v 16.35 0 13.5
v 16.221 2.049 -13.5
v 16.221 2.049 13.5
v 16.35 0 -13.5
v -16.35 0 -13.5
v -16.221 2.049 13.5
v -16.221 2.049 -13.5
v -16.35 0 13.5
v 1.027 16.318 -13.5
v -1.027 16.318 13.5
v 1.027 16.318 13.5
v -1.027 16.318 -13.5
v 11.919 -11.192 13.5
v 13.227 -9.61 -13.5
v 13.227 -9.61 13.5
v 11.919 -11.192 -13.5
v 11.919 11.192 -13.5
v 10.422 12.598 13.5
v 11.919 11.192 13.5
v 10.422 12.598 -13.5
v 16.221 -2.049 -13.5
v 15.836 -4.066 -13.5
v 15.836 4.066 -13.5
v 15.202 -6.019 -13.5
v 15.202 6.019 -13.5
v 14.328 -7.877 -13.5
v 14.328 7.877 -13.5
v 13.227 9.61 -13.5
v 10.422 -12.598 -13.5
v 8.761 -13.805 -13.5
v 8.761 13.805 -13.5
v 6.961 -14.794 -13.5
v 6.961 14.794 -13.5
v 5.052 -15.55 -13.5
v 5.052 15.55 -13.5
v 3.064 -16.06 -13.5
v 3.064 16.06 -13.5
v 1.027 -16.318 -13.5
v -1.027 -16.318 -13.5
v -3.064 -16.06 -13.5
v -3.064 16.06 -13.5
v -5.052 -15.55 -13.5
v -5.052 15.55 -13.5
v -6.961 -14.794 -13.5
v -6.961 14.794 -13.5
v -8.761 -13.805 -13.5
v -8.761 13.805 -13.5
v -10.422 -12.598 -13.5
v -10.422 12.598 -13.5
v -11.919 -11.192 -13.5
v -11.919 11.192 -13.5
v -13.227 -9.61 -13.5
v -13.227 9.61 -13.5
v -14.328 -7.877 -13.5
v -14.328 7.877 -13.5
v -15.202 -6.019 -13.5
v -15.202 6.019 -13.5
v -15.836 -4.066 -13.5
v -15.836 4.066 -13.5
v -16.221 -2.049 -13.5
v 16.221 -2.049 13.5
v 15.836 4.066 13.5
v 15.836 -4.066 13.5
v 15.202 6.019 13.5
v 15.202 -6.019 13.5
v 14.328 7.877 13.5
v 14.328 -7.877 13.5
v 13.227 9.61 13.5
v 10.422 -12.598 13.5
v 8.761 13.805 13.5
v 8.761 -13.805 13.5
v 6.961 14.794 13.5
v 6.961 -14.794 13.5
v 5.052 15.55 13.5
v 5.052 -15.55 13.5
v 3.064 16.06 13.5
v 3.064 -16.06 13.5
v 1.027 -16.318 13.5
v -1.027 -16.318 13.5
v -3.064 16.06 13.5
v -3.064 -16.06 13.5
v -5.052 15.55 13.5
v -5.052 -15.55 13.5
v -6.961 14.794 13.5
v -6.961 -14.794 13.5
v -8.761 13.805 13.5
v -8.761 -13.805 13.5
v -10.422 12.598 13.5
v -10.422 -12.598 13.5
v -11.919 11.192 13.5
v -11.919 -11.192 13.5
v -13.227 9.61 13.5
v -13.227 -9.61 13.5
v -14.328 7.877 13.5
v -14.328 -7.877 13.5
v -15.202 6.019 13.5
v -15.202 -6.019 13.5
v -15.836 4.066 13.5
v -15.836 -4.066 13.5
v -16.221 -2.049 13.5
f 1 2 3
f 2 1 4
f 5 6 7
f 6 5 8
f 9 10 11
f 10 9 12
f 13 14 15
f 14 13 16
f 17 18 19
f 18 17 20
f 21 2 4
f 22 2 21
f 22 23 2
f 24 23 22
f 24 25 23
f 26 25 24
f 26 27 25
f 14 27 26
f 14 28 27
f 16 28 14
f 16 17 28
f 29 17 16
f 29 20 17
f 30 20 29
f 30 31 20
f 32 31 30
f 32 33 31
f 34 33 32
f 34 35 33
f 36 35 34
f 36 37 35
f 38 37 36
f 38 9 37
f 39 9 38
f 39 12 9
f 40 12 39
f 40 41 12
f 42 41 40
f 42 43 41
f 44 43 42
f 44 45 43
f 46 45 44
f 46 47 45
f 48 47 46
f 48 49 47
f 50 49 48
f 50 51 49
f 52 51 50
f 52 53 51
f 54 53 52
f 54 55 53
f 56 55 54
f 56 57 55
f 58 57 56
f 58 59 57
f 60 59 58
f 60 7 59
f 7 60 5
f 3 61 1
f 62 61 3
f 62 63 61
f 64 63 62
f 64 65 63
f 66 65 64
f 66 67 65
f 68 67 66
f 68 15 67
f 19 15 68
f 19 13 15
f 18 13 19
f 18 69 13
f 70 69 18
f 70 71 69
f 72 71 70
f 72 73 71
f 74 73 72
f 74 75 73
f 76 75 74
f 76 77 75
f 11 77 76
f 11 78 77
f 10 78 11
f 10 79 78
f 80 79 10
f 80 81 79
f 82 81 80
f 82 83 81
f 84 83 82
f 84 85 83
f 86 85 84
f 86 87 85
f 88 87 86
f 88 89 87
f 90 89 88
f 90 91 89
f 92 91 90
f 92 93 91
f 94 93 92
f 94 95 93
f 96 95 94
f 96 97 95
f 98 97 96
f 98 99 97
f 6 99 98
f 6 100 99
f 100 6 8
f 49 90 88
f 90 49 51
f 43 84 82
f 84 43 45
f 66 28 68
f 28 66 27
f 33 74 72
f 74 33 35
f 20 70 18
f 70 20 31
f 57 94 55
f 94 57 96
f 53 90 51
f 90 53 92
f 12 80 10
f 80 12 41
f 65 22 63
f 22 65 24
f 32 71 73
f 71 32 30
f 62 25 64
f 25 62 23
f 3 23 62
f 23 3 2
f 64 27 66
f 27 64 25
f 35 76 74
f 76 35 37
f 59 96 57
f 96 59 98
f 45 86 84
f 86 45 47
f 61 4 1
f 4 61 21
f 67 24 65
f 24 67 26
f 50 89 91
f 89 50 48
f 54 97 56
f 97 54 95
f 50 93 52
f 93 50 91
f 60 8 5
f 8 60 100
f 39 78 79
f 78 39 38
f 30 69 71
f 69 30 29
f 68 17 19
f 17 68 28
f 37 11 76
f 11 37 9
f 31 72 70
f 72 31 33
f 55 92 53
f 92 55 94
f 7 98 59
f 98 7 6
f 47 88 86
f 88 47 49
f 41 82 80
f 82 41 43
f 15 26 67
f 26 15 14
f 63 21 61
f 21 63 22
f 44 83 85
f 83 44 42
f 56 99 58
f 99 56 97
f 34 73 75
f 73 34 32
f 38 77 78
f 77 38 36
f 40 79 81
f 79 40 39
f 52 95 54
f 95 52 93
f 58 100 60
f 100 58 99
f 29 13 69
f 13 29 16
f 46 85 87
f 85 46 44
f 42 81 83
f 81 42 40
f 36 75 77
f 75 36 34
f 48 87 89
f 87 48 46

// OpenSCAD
$fn = 50;


difference() {
	union() {
		translate(v = [0, 0, -13.5000000000]) {
			cylinder(h = 27, r = 16.3500000000);
		}
	}
	union() {
		translate(v = [0, 0, -100.0000000000]) {
			cylinder(h = 200, r = 0);
		}
	}
}
